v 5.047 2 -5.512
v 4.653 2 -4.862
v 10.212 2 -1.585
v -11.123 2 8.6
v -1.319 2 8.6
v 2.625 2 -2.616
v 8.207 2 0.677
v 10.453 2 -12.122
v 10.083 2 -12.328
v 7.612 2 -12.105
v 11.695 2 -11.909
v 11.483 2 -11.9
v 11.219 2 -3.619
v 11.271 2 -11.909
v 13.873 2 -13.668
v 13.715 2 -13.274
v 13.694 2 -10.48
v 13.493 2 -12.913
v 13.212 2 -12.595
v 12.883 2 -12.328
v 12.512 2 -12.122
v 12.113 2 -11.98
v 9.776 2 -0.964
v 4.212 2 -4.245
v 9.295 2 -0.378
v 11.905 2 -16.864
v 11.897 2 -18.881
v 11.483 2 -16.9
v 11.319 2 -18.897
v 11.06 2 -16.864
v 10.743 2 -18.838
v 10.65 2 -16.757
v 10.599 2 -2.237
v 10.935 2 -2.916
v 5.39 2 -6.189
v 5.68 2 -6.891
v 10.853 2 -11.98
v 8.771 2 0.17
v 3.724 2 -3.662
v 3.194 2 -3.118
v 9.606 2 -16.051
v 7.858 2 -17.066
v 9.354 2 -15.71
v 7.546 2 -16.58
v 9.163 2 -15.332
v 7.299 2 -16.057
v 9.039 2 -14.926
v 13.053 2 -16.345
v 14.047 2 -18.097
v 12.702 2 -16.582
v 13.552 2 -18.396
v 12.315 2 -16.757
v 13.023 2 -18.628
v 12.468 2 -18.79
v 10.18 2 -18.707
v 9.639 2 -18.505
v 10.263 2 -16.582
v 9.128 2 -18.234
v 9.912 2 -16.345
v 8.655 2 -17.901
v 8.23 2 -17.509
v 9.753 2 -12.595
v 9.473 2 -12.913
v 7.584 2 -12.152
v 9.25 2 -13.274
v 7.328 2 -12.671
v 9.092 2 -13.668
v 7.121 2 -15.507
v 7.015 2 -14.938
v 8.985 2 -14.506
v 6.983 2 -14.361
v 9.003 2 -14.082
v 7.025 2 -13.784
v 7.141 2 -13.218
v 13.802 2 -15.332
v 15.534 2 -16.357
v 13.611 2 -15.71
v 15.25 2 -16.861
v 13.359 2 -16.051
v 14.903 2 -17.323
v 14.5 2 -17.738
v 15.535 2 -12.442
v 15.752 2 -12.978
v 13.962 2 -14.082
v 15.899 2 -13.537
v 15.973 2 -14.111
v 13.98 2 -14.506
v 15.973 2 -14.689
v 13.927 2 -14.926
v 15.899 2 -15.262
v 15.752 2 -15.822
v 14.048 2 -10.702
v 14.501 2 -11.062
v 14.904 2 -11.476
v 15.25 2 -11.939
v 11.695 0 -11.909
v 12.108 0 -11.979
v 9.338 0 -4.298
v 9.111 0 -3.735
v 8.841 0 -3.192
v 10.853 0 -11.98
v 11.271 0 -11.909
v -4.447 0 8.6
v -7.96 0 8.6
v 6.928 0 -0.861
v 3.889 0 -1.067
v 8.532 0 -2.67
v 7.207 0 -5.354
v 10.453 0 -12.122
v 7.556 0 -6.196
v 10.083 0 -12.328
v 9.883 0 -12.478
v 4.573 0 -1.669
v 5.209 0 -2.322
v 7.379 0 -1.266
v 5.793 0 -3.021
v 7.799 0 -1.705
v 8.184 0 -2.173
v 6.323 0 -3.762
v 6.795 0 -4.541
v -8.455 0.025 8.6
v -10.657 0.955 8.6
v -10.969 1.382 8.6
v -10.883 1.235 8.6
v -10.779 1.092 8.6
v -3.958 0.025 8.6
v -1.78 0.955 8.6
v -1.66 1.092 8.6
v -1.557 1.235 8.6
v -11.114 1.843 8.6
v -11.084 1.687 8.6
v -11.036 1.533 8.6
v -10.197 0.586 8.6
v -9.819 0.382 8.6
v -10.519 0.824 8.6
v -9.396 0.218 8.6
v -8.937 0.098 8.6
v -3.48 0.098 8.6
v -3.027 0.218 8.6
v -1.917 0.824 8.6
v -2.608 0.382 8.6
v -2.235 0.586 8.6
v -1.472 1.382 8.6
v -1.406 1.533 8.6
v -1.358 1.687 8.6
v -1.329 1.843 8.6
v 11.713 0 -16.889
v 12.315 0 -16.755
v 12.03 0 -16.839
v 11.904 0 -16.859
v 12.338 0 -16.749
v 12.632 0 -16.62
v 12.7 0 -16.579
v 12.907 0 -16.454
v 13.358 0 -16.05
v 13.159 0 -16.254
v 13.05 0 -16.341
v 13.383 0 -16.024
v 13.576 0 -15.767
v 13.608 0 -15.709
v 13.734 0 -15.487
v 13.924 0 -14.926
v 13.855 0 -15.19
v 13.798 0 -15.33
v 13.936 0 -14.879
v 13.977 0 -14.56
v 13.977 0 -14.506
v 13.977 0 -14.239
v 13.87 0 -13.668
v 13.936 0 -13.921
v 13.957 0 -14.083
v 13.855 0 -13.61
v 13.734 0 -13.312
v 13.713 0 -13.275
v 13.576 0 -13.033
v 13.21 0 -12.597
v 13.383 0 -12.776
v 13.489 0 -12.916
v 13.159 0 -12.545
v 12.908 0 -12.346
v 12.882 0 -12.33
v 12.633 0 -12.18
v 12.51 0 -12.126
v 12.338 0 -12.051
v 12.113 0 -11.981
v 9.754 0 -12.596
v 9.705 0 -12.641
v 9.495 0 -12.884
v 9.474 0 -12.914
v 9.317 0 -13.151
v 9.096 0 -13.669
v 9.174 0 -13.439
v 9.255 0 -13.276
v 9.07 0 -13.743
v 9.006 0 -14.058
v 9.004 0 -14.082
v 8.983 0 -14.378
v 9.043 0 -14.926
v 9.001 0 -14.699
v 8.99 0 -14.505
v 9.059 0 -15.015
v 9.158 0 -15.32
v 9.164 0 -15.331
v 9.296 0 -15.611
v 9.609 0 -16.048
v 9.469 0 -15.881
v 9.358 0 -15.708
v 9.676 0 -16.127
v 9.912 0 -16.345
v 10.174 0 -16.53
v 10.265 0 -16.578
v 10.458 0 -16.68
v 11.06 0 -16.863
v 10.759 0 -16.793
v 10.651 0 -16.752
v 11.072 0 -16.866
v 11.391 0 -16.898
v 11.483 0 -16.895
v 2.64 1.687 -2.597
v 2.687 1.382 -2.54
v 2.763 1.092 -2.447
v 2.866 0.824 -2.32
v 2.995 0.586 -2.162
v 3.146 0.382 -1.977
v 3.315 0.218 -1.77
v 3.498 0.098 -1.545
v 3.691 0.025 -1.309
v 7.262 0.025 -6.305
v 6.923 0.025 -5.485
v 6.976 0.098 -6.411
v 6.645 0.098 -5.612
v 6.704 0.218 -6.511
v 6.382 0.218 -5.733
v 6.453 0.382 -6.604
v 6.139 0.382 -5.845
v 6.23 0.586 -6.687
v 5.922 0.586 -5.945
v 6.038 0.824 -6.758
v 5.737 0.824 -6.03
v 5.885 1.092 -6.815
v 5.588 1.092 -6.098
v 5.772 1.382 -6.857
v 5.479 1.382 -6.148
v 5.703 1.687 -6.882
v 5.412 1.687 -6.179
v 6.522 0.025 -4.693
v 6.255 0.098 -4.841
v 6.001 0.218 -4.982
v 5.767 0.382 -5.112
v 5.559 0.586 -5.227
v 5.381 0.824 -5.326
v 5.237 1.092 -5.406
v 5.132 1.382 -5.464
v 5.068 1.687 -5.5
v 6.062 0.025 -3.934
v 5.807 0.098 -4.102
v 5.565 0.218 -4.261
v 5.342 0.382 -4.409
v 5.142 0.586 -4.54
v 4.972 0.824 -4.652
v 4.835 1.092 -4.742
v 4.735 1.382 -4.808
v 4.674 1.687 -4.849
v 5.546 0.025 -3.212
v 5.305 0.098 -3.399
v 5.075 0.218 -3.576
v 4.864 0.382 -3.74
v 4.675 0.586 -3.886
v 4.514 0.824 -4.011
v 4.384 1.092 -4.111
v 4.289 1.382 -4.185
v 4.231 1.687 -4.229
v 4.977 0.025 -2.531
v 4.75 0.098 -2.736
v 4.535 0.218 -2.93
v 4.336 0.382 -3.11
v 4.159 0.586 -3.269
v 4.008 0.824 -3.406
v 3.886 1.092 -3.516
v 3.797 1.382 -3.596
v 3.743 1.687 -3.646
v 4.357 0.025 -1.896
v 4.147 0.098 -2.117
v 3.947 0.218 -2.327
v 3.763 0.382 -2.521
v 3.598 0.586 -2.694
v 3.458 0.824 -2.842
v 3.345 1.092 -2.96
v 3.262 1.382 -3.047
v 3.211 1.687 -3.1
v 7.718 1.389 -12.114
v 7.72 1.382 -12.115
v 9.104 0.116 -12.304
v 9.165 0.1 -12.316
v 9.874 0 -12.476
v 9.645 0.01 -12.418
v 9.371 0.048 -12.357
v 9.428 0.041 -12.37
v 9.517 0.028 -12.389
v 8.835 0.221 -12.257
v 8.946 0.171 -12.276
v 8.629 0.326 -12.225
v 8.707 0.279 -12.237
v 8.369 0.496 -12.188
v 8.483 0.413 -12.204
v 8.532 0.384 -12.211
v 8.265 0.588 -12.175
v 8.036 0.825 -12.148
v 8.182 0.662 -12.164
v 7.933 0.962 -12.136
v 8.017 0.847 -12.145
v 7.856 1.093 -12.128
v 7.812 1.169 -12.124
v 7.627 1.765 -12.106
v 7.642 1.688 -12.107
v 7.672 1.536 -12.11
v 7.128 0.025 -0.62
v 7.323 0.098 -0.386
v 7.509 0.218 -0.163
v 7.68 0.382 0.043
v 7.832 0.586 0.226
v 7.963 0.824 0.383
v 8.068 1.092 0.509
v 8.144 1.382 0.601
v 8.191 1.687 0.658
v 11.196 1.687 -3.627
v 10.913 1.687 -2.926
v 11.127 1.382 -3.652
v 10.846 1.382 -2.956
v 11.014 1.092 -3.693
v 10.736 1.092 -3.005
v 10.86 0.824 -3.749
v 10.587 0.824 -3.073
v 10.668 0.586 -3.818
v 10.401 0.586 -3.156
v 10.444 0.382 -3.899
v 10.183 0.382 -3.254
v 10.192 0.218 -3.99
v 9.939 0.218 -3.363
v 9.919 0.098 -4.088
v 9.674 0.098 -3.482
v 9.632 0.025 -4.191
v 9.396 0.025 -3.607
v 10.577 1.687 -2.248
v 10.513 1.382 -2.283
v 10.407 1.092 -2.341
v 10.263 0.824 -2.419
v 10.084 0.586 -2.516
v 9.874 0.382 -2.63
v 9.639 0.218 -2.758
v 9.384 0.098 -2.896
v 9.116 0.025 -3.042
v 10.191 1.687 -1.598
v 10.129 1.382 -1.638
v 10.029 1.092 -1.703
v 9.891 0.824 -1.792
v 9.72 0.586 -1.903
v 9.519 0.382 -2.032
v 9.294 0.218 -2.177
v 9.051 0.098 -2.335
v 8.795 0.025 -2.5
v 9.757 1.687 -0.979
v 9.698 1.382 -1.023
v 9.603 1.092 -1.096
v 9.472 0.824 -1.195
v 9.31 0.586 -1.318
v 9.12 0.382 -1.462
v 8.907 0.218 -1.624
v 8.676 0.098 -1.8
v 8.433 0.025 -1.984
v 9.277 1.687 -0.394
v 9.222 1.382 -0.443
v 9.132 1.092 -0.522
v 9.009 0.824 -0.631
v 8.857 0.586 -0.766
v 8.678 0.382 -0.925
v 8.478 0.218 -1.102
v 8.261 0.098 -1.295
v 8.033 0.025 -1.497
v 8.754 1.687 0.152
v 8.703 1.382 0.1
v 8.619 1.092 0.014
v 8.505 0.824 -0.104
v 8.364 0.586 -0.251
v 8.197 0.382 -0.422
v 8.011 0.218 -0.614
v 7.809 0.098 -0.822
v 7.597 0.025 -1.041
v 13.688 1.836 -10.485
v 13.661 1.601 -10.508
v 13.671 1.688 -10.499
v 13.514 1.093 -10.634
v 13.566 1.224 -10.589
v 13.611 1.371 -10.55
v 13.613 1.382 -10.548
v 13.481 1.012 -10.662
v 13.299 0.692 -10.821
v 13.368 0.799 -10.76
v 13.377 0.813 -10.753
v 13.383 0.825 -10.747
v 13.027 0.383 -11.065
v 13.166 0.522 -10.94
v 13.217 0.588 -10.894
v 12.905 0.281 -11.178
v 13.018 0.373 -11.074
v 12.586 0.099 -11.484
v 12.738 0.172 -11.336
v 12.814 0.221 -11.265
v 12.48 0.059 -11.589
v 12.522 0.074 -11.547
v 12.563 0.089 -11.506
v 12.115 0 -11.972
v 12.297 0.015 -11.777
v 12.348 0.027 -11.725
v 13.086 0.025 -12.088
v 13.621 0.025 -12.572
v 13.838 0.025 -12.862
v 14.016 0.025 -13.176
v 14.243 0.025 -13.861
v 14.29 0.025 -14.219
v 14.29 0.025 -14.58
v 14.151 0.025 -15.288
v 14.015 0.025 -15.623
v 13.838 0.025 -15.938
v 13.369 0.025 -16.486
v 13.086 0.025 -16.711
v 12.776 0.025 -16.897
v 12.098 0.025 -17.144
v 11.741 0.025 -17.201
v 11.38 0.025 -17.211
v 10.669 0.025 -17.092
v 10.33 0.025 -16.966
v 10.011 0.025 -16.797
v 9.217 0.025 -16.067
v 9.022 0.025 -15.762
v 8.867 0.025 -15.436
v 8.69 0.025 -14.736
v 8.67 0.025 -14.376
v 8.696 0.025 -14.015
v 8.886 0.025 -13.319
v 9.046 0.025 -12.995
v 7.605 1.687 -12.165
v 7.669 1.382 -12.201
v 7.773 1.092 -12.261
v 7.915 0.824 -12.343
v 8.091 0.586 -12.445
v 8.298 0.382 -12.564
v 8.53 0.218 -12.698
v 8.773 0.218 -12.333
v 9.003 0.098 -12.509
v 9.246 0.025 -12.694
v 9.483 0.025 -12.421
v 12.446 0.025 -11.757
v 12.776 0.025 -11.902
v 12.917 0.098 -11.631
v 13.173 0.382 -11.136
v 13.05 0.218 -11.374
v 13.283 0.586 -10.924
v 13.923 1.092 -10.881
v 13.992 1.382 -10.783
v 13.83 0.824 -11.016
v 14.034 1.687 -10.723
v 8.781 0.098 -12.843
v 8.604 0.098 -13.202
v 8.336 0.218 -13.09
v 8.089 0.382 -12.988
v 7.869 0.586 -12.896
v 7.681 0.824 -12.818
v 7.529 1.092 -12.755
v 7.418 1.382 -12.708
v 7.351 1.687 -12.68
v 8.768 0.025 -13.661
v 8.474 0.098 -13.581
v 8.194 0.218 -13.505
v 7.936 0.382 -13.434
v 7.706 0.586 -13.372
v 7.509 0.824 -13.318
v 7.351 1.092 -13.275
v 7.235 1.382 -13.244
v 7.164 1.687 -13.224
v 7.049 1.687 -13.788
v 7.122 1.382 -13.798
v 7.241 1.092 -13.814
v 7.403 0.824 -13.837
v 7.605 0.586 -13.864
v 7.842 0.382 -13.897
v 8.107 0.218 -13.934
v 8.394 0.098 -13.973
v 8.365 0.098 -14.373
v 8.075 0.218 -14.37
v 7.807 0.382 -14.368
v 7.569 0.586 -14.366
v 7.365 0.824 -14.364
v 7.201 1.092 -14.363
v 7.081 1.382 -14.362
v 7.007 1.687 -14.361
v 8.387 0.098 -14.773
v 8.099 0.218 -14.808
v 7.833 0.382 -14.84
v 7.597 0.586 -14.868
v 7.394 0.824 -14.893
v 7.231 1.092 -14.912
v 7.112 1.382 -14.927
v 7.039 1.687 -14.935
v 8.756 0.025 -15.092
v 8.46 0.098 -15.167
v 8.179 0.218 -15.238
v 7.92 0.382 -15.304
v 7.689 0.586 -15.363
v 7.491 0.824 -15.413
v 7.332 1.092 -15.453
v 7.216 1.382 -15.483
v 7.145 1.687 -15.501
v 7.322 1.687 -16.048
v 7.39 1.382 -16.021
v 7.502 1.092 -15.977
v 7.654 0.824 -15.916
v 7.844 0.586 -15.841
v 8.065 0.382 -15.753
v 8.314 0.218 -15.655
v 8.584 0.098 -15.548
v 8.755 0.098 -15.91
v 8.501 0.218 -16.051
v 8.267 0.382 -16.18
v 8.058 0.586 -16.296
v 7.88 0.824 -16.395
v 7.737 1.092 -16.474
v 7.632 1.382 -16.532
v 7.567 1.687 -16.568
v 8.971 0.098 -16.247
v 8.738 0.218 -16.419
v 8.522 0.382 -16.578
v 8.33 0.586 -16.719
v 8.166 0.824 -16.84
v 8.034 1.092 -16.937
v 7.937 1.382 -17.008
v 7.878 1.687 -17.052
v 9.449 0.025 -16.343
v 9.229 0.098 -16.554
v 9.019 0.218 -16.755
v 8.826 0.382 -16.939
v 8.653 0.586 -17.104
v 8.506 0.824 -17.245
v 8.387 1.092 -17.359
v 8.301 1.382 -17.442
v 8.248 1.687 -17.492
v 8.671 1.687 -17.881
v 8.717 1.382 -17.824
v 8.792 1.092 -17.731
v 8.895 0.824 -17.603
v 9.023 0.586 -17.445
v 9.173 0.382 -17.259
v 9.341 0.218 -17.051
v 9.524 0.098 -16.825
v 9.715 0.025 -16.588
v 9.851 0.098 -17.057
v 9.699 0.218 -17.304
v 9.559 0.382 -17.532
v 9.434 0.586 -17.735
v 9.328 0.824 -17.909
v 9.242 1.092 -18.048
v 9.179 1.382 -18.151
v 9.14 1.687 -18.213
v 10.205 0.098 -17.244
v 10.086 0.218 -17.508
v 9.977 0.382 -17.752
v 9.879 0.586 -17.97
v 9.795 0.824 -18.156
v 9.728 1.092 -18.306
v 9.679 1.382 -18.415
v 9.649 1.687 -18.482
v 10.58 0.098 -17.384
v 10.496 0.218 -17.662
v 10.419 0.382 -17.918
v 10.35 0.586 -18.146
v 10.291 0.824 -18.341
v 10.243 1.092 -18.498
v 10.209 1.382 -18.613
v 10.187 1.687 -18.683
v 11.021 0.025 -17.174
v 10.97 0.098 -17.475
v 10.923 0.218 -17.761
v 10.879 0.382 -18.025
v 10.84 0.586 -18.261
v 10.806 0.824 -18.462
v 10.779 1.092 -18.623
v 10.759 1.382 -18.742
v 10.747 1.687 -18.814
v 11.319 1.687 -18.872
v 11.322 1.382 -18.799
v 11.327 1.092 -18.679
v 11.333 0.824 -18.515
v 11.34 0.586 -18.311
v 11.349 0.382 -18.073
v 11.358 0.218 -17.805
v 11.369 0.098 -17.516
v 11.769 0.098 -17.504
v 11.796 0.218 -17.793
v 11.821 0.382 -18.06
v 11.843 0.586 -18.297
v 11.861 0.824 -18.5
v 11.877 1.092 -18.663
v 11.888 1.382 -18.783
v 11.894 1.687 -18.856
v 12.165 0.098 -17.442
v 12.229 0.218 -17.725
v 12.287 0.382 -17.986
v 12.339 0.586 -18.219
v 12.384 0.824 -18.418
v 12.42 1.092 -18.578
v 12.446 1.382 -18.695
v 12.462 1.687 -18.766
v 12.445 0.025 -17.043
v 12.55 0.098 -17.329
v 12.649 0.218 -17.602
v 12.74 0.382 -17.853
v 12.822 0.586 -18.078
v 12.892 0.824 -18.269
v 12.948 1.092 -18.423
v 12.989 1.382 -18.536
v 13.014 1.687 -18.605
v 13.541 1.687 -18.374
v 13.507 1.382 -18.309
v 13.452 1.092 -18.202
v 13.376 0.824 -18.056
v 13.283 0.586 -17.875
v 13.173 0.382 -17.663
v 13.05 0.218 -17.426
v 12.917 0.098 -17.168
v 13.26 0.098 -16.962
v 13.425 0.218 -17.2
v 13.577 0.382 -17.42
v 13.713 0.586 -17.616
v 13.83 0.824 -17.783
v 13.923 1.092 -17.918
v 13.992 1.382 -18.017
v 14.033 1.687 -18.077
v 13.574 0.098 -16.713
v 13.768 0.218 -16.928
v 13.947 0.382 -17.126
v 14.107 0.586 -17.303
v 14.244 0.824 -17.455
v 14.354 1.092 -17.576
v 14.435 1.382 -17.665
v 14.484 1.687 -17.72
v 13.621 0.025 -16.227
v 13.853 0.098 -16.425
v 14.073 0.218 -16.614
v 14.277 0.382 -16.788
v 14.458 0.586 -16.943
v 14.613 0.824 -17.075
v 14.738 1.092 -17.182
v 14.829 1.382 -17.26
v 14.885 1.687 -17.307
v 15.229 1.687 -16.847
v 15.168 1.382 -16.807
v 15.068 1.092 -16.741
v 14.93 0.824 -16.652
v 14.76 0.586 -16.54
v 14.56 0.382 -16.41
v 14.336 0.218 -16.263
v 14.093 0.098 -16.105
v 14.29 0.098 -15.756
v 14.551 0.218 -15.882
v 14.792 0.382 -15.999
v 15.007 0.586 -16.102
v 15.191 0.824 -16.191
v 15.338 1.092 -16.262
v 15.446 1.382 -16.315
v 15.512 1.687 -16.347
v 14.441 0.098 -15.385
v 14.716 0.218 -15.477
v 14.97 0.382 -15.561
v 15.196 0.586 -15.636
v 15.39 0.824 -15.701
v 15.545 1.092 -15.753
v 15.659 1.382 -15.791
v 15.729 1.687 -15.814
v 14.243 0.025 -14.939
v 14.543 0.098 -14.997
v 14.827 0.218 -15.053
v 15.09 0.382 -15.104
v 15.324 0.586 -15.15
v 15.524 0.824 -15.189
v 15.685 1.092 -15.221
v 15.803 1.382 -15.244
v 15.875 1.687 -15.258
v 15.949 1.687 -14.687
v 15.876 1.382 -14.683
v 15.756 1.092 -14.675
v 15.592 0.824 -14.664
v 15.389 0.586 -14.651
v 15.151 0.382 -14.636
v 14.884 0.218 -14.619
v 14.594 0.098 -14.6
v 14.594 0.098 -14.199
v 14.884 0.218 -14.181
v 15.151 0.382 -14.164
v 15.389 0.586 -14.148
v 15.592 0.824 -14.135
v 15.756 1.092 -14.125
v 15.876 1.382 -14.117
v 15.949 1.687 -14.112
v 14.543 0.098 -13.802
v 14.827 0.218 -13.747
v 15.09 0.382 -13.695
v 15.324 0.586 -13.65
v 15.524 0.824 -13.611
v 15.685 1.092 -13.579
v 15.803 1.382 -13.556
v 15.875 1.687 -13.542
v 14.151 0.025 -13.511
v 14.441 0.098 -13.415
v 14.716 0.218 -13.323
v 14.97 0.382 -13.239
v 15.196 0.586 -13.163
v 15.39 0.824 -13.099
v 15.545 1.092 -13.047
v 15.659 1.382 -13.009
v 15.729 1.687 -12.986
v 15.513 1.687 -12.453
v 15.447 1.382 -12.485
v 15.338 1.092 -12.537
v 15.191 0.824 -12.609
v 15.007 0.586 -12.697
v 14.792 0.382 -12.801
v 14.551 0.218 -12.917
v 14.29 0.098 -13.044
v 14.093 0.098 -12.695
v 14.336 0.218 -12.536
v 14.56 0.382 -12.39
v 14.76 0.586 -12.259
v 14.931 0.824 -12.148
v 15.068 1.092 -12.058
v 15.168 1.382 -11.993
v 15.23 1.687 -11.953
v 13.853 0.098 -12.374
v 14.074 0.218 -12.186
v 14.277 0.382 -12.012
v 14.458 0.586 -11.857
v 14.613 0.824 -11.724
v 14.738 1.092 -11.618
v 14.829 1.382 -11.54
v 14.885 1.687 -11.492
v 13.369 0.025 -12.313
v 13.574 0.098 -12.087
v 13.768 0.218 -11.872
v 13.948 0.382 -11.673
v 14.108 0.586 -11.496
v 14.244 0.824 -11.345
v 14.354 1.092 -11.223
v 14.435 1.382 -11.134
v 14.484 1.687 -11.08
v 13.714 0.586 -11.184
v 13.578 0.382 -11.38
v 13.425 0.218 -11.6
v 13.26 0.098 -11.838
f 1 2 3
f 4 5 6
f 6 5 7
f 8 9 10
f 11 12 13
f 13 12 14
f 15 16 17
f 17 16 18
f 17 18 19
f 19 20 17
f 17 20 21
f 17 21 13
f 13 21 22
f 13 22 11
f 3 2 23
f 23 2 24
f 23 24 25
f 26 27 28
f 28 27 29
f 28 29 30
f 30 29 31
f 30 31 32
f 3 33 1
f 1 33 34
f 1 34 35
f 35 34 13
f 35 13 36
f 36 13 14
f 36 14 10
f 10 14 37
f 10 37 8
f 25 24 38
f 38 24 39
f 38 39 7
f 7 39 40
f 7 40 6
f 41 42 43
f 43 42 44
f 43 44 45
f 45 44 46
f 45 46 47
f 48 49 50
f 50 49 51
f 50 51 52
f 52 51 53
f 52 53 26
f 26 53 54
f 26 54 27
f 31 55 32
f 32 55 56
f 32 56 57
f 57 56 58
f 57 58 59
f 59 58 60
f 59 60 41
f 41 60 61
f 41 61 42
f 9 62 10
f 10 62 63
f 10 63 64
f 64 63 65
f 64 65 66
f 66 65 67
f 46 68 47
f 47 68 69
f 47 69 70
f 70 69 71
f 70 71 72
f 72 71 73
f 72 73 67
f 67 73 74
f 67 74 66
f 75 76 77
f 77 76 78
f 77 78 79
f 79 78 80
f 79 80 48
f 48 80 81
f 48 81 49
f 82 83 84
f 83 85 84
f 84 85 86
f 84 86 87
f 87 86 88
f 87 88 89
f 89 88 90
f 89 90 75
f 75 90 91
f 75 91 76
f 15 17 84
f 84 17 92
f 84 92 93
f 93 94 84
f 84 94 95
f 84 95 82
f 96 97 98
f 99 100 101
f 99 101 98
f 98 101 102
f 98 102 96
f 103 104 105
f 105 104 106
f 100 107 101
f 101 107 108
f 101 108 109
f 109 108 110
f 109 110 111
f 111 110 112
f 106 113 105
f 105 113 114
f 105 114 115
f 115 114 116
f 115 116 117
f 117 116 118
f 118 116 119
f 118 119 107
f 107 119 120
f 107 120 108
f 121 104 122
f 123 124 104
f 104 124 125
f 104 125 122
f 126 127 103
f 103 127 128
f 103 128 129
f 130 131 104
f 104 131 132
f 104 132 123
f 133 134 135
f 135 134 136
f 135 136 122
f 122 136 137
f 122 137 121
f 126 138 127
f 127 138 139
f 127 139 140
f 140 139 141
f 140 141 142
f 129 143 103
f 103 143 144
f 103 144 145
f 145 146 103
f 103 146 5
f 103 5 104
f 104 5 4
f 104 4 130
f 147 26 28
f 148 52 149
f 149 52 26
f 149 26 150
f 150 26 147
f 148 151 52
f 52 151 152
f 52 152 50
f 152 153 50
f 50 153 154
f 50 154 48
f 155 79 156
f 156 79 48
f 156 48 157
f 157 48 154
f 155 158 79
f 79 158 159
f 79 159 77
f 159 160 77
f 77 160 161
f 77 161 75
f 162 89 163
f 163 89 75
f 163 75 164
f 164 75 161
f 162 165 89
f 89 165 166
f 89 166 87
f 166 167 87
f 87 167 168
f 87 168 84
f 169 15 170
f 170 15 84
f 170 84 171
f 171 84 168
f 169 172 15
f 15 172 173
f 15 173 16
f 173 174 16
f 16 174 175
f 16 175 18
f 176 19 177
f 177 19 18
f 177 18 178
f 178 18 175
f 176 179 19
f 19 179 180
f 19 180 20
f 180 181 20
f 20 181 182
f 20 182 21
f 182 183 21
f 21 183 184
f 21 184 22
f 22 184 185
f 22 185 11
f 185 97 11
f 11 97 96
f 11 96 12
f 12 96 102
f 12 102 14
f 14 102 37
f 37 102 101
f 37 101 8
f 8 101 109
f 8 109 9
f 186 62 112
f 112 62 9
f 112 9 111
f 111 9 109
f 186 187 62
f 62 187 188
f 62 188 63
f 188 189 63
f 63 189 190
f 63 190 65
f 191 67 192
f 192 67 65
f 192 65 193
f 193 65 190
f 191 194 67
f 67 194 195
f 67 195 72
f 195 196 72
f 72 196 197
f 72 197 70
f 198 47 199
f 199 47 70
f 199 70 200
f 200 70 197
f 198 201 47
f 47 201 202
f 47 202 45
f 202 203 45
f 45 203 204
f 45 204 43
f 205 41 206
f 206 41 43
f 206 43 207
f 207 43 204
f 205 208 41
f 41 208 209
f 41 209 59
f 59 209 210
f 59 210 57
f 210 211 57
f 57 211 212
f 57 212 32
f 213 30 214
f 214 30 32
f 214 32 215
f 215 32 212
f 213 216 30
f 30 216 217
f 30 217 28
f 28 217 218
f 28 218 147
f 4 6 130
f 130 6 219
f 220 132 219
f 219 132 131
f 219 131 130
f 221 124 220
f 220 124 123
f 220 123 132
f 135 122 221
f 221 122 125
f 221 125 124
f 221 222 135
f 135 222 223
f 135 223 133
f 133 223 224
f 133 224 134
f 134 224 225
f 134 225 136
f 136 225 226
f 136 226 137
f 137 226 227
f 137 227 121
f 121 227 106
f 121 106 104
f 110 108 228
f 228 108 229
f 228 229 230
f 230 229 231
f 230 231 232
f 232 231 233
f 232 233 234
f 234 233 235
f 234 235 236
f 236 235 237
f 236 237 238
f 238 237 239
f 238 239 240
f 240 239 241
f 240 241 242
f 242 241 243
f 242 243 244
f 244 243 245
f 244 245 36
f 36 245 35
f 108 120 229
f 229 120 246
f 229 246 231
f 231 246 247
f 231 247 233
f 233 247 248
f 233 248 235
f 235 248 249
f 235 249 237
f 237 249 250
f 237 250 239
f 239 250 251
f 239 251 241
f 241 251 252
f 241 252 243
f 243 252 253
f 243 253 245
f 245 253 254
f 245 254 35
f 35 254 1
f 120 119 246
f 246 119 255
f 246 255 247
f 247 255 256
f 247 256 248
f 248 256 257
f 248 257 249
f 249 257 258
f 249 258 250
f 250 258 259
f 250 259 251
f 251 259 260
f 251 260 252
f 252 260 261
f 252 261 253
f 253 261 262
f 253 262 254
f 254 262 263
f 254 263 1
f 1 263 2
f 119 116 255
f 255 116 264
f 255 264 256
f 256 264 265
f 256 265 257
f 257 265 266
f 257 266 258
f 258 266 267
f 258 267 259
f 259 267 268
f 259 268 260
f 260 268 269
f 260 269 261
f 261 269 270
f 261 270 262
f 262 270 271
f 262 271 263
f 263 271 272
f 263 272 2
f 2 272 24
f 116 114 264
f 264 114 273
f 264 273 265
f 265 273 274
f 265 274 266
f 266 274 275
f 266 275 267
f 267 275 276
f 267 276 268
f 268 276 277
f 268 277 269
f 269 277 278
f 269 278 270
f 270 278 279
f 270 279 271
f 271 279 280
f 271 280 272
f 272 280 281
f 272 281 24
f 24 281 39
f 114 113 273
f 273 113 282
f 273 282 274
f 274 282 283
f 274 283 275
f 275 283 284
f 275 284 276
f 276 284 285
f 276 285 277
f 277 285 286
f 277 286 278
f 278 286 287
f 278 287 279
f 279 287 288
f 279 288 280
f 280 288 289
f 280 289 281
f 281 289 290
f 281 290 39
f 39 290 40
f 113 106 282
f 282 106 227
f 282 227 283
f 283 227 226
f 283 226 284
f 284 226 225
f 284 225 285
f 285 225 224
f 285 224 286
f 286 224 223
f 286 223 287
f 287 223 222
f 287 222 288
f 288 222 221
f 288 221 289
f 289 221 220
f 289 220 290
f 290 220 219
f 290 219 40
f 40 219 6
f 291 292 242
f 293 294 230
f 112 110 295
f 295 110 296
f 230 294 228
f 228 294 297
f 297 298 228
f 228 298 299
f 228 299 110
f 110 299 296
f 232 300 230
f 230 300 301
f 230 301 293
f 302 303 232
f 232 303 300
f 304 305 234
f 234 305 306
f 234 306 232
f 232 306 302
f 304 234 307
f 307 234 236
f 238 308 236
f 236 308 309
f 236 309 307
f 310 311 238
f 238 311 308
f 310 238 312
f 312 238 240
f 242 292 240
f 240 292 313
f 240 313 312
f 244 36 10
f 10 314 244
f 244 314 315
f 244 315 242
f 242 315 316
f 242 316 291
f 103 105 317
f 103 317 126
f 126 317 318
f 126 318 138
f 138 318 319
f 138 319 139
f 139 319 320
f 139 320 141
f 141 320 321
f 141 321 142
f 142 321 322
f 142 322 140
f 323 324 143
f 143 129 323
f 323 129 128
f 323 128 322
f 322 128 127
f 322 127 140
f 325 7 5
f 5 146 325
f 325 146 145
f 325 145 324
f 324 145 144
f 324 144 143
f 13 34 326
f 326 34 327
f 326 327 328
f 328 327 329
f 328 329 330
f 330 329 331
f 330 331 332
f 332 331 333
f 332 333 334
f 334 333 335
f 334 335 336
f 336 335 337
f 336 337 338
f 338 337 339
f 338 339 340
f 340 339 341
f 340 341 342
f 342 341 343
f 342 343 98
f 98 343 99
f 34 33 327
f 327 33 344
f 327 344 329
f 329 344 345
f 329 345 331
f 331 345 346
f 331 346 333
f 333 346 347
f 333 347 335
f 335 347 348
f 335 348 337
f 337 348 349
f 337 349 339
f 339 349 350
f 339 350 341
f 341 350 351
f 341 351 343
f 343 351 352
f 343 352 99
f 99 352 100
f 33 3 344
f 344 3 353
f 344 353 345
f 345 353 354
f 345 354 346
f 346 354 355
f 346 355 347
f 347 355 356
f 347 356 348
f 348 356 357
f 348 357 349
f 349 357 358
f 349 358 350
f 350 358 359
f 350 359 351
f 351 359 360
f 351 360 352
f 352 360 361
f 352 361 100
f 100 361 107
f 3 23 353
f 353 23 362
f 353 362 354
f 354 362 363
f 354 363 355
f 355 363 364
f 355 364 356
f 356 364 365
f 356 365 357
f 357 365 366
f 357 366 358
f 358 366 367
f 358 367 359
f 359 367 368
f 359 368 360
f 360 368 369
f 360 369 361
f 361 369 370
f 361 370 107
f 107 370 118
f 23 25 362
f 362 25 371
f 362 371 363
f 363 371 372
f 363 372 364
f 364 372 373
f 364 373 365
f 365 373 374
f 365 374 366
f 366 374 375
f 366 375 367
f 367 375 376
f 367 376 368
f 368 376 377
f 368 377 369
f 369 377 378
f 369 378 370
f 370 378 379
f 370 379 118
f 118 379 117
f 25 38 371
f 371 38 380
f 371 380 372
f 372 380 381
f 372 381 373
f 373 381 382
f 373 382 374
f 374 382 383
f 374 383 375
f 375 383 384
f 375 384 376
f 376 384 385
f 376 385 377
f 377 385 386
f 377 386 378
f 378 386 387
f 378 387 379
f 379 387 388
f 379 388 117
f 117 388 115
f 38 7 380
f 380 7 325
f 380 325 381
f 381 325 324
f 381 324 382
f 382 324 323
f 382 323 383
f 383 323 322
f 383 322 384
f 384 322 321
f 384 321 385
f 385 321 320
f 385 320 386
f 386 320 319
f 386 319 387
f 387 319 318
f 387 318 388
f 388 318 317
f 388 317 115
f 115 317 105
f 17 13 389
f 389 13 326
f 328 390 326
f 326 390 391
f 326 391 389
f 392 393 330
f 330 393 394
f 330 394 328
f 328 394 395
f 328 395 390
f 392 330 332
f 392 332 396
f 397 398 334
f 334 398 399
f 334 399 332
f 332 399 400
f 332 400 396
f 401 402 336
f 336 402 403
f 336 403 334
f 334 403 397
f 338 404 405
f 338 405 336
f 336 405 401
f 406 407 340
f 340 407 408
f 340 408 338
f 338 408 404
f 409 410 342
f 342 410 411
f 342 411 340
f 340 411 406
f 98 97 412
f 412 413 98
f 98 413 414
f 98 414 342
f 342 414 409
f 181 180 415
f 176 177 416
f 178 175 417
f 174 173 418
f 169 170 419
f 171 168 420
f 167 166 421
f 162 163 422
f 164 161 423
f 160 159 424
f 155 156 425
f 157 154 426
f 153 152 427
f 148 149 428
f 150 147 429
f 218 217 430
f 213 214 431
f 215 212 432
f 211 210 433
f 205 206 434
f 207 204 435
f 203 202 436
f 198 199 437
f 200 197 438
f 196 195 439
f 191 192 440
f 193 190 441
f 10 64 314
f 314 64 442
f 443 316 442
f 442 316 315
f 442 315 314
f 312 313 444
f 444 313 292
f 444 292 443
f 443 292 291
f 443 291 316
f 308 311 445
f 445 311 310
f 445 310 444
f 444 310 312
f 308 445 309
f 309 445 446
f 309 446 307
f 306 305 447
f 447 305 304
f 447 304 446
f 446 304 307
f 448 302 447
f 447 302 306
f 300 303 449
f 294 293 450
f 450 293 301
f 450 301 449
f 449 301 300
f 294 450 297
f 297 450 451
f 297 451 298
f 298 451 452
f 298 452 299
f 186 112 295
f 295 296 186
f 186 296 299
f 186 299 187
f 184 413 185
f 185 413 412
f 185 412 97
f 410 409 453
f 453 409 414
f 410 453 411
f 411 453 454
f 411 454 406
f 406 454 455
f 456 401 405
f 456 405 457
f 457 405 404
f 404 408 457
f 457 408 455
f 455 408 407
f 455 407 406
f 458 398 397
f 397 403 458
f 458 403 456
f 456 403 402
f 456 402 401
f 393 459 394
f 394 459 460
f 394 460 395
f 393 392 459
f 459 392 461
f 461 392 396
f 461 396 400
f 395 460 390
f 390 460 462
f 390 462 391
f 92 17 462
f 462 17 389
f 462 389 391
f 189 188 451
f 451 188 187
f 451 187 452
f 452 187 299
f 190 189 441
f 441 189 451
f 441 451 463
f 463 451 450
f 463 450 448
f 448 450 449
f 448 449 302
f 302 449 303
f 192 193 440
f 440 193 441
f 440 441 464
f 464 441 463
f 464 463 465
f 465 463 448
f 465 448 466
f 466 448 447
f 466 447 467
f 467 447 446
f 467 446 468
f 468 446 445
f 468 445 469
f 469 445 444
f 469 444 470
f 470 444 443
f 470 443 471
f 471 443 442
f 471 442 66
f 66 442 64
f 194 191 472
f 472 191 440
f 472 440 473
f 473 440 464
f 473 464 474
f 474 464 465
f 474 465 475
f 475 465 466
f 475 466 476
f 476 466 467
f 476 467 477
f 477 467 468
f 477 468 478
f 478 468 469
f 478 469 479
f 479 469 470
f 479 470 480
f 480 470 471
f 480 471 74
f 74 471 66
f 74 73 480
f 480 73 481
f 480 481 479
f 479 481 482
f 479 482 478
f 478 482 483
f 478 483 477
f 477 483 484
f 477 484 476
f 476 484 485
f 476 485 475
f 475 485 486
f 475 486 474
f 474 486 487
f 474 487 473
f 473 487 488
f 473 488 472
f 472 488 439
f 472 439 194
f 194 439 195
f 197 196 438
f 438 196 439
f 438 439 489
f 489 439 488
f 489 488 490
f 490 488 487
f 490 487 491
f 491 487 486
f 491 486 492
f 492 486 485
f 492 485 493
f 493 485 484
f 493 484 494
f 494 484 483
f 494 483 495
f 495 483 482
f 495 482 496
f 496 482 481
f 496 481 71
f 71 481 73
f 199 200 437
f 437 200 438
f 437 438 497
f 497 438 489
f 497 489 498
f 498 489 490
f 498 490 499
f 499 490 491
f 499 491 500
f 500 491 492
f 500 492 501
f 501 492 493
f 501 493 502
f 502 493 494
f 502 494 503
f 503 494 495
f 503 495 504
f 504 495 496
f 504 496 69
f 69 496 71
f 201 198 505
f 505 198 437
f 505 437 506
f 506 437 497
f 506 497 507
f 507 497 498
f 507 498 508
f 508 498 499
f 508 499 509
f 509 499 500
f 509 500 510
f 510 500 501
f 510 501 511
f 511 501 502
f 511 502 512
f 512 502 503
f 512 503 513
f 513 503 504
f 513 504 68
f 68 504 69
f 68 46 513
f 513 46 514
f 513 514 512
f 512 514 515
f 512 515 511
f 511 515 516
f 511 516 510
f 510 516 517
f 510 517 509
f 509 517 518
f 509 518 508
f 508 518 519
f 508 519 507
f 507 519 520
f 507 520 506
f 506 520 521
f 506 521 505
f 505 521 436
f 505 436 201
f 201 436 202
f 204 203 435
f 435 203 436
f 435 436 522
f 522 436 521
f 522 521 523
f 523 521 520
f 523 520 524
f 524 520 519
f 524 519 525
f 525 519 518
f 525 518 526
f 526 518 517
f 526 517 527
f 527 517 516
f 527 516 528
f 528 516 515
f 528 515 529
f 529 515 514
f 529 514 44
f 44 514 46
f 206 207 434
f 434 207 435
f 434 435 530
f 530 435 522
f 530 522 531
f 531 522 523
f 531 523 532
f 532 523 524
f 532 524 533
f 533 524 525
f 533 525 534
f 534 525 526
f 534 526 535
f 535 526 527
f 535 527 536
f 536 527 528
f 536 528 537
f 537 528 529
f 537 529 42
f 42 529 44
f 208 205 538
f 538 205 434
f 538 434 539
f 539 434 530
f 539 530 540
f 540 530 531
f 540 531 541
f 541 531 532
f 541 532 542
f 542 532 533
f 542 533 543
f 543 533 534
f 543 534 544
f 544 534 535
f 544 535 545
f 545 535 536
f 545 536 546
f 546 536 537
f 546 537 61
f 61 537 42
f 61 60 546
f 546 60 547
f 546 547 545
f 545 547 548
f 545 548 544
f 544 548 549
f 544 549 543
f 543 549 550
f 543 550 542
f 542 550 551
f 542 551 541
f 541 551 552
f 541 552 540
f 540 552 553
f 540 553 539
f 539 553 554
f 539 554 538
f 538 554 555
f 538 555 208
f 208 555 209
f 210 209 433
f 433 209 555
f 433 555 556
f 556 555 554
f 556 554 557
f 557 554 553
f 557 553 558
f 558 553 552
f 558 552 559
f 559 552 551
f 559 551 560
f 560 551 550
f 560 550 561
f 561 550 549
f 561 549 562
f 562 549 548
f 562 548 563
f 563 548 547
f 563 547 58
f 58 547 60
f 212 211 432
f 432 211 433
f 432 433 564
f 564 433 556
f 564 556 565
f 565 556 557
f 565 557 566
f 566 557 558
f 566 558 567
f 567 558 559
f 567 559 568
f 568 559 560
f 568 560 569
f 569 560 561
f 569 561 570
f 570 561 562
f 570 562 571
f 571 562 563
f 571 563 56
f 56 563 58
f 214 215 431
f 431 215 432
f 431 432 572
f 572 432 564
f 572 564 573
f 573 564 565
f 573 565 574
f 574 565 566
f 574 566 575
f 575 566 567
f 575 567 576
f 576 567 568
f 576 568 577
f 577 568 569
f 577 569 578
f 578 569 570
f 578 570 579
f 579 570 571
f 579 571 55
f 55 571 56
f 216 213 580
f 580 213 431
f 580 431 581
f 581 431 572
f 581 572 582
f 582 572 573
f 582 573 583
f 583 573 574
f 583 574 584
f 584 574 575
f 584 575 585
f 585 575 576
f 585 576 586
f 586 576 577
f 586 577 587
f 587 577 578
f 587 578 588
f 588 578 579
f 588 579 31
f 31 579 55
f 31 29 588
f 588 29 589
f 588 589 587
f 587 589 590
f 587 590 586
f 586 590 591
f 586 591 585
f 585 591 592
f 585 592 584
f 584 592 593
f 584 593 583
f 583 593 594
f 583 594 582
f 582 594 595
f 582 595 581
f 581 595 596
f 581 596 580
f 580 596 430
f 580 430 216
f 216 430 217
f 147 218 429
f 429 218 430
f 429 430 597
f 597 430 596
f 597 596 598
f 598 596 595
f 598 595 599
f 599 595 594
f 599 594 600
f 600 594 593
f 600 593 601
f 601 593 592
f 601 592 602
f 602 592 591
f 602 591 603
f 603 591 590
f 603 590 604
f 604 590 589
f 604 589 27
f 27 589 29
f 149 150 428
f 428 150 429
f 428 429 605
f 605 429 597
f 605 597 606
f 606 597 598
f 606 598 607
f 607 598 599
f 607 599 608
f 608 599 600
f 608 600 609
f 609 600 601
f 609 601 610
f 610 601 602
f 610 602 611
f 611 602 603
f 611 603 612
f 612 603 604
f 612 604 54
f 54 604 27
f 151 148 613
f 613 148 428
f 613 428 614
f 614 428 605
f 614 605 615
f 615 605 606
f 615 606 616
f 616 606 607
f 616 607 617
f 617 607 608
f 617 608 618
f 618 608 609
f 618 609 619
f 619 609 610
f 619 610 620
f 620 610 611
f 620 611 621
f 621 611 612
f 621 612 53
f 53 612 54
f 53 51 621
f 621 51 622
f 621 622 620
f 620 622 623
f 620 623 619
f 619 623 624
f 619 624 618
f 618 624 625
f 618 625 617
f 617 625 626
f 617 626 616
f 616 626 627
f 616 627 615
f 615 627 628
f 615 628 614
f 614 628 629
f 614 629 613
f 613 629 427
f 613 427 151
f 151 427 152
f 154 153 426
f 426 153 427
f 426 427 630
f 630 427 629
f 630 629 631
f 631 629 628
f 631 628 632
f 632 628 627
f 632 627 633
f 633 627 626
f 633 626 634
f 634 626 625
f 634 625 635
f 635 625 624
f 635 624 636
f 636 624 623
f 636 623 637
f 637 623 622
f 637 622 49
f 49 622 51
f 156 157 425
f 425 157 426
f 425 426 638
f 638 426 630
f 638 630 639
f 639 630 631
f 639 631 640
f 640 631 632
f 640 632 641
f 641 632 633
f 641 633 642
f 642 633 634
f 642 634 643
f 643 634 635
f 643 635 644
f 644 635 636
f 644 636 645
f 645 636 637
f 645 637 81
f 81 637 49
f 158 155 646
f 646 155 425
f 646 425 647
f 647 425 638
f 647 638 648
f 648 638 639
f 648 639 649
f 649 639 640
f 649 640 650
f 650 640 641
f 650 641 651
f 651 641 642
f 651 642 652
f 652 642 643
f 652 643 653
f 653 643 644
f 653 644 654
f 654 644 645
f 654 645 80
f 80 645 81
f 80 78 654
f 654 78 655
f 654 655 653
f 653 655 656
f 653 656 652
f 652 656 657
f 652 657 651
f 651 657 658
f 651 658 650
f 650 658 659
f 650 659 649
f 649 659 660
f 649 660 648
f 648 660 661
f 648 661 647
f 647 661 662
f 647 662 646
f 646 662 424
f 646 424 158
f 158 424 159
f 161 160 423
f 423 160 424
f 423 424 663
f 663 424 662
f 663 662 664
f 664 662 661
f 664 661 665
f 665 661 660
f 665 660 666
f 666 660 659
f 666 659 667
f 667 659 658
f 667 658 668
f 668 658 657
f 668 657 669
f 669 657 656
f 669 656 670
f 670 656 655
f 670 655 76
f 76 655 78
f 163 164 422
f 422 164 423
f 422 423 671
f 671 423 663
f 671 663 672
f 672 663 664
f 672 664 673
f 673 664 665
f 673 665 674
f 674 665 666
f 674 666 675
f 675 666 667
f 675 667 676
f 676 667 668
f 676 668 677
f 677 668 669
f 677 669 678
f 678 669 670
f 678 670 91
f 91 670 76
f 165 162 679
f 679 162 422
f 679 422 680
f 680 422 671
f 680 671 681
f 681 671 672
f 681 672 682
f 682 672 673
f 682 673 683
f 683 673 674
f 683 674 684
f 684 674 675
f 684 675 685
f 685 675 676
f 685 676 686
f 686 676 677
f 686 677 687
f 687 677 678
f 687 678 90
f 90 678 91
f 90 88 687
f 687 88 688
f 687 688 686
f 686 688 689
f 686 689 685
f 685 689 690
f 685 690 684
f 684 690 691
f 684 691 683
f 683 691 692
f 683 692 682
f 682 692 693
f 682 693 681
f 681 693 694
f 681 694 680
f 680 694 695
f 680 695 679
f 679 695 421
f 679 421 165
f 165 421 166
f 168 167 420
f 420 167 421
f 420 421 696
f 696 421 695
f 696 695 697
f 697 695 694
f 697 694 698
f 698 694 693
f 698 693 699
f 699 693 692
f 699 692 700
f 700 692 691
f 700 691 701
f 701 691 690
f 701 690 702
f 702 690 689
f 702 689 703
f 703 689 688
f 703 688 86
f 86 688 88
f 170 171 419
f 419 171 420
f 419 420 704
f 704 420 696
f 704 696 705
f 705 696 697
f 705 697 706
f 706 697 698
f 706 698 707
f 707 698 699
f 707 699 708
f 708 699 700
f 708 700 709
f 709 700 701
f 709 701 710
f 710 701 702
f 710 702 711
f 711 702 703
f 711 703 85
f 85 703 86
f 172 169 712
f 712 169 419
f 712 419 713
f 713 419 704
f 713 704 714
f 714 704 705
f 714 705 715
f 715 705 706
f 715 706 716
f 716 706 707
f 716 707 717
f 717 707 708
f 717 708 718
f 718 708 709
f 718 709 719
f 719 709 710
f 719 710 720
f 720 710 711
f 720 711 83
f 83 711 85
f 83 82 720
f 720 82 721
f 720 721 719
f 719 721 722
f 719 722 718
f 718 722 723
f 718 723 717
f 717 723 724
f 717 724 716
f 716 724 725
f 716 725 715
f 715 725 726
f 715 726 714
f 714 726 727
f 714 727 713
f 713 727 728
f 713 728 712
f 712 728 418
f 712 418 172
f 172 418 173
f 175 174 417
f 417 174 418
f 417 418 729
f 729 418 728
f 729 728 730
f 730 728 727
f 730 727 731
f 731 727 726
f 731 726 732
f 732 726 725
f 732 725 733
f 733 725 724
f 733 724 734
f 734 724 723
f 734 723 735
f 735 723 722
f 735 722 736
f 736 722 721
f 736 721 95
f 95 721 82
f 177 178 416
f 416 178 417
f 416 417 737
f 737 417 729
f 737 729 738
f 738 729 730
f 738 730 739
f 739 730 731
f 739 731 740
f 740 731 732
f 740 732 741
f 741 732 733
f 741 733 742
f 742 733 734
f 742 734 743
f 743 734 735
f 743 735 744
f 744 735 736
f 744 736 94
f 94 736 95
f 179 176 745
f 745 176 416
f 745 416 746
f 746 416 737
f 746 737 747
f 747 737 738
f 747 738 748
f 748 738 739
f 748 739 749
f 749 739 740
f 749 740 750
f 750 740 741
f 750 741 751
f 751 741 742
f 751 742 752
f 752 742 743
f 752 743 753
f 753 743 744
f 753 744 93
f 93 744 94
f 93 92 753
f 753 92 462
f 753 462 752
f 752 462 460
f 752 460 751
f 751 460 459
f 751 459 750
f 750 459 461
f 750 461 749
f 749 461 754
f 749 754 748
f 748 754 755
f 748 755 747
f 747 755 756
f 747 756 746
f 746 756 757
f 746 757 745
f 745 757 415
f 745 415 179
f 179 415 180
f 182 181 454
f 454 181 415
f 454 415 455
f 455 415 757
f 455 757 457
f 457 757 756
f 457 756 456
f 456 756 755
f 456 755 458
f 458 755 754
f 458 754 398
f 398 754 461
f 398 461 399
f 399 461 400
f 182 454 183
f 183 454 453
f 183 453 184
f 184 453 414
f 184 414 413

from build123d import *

# Parameters (mm, degrees)
SKETCH1_R           = 2.5000000000000004
BOSS_EXTRUDE1_DEPTH = 2
FILLET1_R           = 10
FILLET2_R           = 10
FILLET3_R           = 2
FILLET4_R           = 2


with BuildPart() as part:
    # Sketch1 → Boss-Extrude1 (new body)
    with BuildSketch(Plane(origin=(0, 0, 0), x_dir=(1, 0, 0), z_dir=(0, 1, 0))):
        with BuildLine():
            Line((4.734439187943633, 4.337505524576787), (-11.123424173439652, -8.60036927980545))
            Line((-11.123424173439652, -8.60036927980545), (-1.3192163601402593, -8.60036927980545))
            Line((-1.3192163601402593, -8.60036927980545), (10.29708605182919, 1.0617245936219641))
            Line((10.29708605182919, 1.0617245936219641), (13.693514413313048, 10.480195617492226))
            ThreePointArc((13.693514413313048, 10.480195617492226), (12.643820805599, 18.747230765158918), (7.611903426882685, 12.104525420451473))
            Line((7.611903426882685, 12.104525420451473), (4.734439187943633, 4.337505524576787))
        make_face()
        with Locations(Location((11.482625796556237, 14.39963072019455, 0), (0, 0, 270))):
            Circle(SKETCH1_R, mode=Mode.SUBTRACT)
    extrude(amount=BOSS_EXTRUDE1_DEPTH)

    # Fillet1
    fillet1_edges = [part.edges().sort_by_distance(p)[0] for p in [
        (10.29708605182919, 1, -1.0617245936219641),
    ]]
    fillet(fillet1_edges, radius=FILLET1_R)

    # Fillet2
    fillet2_edges = [part.edges().sort_by_distance(p)[0] for p in [
        (4.734439187943633, 1, -4.337505524576787),
    ]]
    fillet(fillet2_edges, radius=FILLET2_R)

    # Fillet3
    fillet3_edges = [part.edges().sort_by_distance(p)[0] for p in [
        (6.6461096923169105, 0, -9.49759844281185),
        (4.438286722207531, 0, -4.549211293465088),
        (12.456410034317898, 0, -7.049641368446211),
        (9.999920903343424, 0, -1.270100820961935),
        (-4.249333346620522, 0, 2.9920395518602865),
        (3.4439024153195033, 0, 4.638549149214148),
    ]]
    fillet(fillet3_edges, radius=FILLET3_R - 0.0001)  # a hair under: the kernel refuses the full size

    # Fillet4
    fillet4_edges = [part.edges().sort_by_distance(p)[0] for p in [
        (12.744313913733468, 3.2e-16, -18.719137994754206),
    ]]
    fillet(fillet4_edges, radius=FILLET4_R - 0.0001)  # a hair under: the kernel refuses the full size


solid = part.part
